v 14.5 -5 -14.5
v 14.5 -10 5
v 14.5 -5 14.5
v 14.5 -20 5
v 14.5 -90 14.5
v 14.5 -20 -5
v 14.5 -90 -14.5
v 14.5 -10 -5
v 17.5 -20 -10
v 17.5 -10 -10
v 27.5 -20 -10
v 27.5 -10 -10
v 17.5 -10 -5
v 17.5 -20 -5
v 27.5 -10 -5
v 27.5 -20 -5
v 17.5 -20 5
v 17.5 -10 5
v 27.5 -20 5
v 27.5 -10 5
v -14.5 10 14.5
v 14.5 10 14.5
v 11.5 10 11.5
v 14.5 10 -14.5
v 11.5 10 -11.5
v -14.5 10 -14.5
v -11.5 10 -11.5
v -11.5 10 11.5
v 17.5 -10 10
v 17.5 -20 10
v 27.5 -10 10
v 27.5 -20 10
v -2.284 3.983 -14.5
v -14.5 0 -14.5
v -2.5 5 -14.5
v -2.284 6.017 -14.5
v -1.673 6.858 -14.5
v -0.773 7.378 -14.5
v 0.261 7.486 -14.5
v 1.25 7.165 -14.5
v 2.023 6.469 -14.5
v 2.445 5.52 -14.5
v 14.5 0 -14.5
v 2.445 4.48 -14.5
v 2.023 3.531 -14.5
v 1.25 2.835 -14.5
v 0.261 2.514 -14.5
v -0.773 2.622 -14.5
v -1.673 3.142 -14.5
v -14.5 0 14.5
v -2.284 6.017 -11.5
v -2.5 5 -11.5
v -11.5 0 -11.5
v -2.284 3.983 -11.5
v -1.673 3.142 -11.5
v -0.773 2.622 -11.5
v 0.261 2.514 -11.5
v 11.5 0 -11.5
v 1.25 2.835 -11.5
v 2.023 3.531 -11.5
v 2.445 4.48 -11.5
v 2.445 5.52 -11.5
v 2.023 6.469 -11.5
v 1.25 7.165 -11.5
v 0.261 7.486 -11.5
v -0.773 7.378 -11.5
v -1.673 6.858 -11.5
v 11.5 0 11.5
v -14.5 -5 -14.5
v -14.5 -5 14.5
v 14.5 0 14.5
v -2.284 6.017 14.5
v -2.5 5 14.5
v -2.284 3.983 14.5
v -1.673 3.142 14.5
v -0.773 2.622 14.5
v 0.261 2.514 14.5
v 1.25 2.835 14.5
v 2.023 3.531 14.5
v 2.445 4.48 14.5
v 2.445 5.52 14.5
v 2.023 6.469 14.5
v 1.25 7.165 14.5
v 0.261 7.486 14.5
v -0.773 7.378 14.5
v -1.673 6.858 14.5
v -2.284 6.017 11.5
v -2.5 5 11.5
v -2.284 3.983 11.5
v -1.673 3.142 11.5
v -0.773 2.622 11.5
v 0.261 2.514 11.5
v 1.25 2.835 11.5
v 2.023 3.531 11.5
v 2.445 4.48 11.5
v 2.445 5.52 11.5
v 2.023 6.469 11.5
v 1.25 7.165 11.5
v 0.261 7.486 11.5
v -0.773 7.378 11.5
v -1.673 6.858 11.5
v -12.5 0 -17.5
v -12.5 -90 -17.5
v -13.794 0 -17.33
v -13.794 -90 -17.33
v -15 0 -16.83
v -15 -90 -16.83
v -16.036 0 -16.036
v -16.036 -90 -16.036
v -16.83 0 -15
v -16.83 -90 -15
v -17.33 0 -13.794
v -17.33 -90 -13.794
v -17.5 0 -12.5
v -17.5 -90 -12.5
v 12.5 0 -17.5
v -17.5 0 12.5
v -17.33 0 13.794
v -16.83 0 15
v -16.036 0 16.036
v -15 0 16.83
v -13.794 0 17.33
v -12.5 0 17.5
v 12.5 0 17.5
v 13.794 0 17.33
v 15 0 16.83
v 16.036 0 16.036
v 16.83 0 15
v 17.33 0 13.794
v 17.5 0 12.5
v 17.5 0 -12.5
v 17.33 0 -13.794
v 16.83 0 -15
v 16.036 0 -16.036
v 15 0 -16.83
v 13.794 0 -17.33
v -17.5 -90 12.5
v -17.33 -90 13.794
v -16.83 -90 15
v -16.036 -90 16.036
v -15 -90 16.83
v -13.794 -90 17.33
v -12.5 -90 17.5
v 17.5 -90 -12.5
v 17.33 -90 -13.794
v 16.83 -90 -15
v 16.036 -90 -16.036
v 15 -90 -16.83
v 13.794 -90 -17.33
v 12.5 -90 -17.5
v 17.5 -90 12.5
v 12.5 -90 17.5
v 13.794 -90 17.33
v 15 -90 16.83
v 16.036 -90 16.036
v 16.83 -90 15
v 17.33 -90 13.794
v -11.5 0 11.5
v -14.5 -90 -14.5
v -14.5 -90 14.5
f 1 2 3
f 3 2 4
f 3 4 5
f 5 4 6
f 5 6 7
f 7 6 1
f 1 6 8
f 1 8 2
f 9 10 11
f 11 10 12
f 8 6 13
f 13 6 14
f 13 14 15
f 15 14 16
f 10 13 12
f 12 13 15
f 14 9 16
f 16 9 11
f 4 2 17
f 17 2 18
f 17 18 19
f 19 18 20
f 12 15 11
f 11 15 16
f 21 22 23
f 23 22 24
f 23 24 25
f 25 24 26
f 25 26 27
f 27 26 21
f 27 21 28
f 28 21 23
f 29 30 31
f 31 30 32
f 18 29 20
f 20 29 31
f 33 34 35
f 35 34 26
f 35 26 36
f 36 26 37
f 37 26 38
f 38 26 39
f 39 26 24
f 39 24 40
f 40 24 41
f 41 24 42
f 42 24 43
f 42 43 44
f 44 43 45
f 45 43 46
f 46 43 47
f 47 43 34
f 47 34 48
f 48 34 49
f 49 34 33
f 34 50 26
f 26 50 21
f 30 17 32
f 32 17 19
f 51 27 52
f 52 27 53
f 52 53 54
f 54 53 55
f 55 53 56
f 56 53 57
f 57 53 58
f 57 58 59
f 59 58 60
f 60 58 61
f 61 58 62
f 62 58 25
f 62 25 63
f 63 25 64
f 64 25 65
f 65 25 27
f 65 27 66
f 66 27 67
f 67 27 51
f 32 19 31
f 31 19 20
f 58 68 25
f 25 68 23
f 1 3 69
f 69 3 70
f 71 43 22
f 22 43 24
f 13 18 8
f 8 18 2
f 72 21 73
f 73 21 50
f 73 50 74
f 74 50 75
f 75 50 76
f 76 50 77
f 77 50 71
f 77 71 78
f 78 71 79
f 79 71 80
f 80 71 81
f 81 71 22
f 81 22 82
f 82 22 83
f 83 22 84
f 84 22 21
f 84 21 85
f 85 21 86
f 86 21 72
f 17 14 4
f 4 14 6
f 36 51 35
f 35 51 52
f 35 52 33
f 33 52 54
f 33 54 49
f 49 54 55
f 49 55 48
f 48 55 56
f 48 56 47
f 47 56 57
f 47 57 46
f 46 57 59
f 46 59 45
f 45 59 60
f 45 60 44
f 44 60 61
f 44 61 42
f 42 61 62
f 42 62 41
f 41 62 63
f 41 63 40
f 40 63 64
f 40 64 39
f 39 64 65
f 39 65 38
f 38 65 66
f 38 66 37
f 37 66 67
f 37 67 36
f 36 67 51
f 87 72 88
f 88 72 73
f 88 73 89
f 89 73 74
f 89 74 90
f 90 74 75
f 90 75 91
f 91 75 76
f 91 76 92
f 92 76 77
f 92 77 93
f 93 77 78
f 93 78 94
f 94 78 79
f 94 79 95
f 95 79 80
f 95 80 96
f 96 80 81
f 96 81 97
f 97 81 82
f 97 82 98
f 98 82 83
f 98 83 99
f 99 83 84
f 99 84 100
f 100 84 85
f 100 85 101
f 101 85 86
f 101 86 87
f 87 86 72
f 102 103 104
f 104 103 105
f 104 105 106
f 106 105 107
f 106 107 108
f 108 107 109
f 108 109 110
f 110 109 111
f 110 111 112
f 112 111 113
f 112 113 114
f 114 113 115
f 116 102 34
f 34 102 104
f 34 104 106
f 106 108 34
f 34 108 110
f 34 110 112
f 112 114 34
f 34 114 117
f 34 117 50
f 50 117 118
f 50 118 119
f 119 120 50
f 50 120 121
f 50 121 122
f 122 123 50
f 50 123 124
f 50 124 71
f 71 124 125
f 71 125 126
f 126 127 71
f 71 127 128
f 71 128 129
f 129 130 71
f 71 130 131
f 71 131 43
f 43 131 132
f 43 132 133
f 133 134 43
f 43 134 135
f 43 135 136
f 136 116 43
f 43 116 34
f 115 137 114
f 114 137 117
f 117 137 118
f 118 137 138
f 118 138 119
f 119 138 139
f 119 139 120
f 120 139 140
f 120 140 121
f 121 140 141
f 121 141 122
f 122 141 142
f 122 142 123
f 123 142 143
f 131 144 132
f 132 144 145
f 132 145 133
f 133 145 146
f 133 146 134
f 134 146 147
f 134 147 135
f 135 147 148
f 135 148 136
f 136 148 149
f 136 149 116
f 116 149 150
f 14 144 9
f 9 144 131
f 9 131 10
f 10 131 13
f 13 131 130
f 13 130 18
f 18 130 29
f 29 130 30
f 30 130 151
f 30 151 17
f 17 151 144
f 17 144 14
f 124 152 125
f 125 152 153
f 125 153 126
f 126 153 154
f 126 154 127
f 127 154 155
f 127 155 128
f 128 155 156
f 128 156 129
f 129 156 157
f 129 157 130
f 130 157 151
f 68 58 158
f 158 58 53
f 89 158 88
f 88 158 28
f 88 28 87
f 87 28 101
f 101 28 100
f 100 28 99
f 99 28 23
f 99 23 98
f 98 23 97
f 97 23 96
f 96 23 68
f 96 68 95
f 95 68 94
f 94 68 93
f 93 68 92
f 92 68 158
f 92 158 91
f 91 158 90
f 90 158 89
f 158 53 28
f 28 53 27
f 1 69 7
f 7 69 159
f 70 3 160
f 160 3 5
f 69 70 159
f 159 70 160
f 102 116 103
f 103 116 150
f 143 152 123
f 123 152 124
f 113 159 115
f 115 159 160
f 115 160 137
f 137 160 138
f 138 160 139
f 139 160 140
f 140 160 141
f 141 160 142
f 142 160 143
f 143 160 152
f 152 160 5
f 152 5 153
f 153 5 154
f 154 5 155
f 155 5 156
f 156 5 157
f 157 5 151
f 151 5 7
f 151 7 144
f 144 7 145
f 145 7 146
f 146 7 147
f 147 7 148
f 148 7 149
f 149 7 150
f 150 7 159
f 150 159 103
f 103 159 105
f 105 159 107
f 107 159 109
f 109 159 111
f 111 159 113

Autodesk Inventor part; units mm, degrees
ref_plane "YZ Plane" through (0, 0, 0) normal (1, 0, 0) x (0, 1, 0)
ref_plane "XZ Plane" through (0, 0, 0) normal (0, 1, 0) x (-1, 0, 0)
ref_plane "XY Plane" through (0, 0, 0) normal (0, 0, 1) x (1, 0, 0)
sketch "Schizzo2" plane through (0, 0, 0) normal (0, 1, 0) x (-1, 0, 0)
  line L0 (11.5, 11.5) -> (-11.5, 11.5)
  line L1 (-11.5, 11.5) -> (-11.5, -11.5)
  line L2 (-11.5, -11.5) -> (11.5, -11.5)
  line L3 (11.5, -11.5) -> (11.5, 11.5)
  line L4 (17.5, 17.5) -> (-17.5, 17.5)
  line L5 (-17.5, 17.5) -> (-17.5, -17.5)
  line L6 (-17.5, -17.5) -> (17.5, -17.5)
  line L7 (17.5, -17.5) -> (17.5, 17.5)
  line L8 (0, 0) -> (13.1636, 0) construction
  line L9 (0, 0) -> (0, -15.8245) construction
  line L10 (14.5, 14.5) -> (-14.5, 14.5)
  line L11 (-14.5, 14.5) -> (-14.5, -14.5)
  line L12 (-14.5, -14.5) -> (14.5, -14.5)
  line L13 (14.5, -14.5) -> (14.5, 14.5)
  dimension "d1" = 23
  dimension "d2" = 35
  dimension "d3" = 3
extrude "Estrusione1" add sketch "Schizzo2" along normal blind 10 and the other way blind 5 contours L13 L12 L11 L10
extrude "Estrusione2" add sketch "Schizzo2" against normal blind 90 contours L7 L6 L5 L4
extrude "Estrusione3" add sketch "Schizzo2" against normal blind 5 contours L3 L2 L1 L0
fillet "Raccordo1" radius 5 4 edges at (17.5, -45, 17.5) (17.5, -45, -17.5) (-17.5, -45, 17.5) (-17.5, -45, -17.5)
sketch "Schizzo3" plane through (0, 0, 0) normal (0, 0, 1) x (1, 0, 0)
  line L0 (-14.5, -5) -> (-14.5, 10) projected
  line L1 (-12.5, 0) -> (12.5, 0) projected
  line L2 (14.5, 10) -> (14.5, -5) projected
  line L3 (-14.5, 10) -> (14.5, 10) projected
  line L4 (0, 0) -> (0, 15.5409) construction
  line L5 (0, 0) -> (22.1267, 0) construction
  circle A0 centre (0, 5) radius 2.5
  dimension "d11" = 5
  dimension "d12" = 5
extrude "Estrusione4" cut sketch "Schizzo3" along normal through all both and the other way through all
sketch "Schizzo4" plane through (0, 0, 0) normal (1, 0, 0) x (0, 1, 0)
  line L0 (0, 12.5) -> (0, -12.5) projected
  line L1 (-90, -17.5) -> (0, -17.5) projected
  line L2 (0, 17.5) -> (-90, 17.5) projected
  line L3 (-90, -12.5) -> (-90, 12.5) projected
  line L4 (0, 0) -> (-112.8212, 0) construction
  line L5 (0, 0) -> (0, -73.2961) construction
  line L6 (-10, 10) -> (-20, 10)
  line L7 (-20, 10) -> (-20, -10)
  line L8 (-20, -10) -> (-10, -10)
  line L9 (-10, -10) -> (-10, 10)
  line L10 (-10, 5) -> (-20, 5)
  line L11 (-20, 5) -> (-20, -5)
  line L12 (-20, -5) -> (-10, -5)
  line L13 (-10, -5) -> (-10, 5)
  dimension "d17" = 10
  dimension "d18" = 20
  dimension "d19" = 10
  dimension "d20" = 10
extrude "Estrusione5" cut sketch "Schizzo4" along normal through all contours L9 L12 L7 L10
extrude "Estrusione6" add sketch "Schizzo4" along normal blind 27.5 contours L9 L10 L7 L6 | L9 L8 L7 L12
extrude "Estrusione7" cut sketch "Schizzo4" along normal up to surface (14.5 mm away) contours L9 L10 L7 L6 | L9 L8 L7 L12
properties part number "manico"
